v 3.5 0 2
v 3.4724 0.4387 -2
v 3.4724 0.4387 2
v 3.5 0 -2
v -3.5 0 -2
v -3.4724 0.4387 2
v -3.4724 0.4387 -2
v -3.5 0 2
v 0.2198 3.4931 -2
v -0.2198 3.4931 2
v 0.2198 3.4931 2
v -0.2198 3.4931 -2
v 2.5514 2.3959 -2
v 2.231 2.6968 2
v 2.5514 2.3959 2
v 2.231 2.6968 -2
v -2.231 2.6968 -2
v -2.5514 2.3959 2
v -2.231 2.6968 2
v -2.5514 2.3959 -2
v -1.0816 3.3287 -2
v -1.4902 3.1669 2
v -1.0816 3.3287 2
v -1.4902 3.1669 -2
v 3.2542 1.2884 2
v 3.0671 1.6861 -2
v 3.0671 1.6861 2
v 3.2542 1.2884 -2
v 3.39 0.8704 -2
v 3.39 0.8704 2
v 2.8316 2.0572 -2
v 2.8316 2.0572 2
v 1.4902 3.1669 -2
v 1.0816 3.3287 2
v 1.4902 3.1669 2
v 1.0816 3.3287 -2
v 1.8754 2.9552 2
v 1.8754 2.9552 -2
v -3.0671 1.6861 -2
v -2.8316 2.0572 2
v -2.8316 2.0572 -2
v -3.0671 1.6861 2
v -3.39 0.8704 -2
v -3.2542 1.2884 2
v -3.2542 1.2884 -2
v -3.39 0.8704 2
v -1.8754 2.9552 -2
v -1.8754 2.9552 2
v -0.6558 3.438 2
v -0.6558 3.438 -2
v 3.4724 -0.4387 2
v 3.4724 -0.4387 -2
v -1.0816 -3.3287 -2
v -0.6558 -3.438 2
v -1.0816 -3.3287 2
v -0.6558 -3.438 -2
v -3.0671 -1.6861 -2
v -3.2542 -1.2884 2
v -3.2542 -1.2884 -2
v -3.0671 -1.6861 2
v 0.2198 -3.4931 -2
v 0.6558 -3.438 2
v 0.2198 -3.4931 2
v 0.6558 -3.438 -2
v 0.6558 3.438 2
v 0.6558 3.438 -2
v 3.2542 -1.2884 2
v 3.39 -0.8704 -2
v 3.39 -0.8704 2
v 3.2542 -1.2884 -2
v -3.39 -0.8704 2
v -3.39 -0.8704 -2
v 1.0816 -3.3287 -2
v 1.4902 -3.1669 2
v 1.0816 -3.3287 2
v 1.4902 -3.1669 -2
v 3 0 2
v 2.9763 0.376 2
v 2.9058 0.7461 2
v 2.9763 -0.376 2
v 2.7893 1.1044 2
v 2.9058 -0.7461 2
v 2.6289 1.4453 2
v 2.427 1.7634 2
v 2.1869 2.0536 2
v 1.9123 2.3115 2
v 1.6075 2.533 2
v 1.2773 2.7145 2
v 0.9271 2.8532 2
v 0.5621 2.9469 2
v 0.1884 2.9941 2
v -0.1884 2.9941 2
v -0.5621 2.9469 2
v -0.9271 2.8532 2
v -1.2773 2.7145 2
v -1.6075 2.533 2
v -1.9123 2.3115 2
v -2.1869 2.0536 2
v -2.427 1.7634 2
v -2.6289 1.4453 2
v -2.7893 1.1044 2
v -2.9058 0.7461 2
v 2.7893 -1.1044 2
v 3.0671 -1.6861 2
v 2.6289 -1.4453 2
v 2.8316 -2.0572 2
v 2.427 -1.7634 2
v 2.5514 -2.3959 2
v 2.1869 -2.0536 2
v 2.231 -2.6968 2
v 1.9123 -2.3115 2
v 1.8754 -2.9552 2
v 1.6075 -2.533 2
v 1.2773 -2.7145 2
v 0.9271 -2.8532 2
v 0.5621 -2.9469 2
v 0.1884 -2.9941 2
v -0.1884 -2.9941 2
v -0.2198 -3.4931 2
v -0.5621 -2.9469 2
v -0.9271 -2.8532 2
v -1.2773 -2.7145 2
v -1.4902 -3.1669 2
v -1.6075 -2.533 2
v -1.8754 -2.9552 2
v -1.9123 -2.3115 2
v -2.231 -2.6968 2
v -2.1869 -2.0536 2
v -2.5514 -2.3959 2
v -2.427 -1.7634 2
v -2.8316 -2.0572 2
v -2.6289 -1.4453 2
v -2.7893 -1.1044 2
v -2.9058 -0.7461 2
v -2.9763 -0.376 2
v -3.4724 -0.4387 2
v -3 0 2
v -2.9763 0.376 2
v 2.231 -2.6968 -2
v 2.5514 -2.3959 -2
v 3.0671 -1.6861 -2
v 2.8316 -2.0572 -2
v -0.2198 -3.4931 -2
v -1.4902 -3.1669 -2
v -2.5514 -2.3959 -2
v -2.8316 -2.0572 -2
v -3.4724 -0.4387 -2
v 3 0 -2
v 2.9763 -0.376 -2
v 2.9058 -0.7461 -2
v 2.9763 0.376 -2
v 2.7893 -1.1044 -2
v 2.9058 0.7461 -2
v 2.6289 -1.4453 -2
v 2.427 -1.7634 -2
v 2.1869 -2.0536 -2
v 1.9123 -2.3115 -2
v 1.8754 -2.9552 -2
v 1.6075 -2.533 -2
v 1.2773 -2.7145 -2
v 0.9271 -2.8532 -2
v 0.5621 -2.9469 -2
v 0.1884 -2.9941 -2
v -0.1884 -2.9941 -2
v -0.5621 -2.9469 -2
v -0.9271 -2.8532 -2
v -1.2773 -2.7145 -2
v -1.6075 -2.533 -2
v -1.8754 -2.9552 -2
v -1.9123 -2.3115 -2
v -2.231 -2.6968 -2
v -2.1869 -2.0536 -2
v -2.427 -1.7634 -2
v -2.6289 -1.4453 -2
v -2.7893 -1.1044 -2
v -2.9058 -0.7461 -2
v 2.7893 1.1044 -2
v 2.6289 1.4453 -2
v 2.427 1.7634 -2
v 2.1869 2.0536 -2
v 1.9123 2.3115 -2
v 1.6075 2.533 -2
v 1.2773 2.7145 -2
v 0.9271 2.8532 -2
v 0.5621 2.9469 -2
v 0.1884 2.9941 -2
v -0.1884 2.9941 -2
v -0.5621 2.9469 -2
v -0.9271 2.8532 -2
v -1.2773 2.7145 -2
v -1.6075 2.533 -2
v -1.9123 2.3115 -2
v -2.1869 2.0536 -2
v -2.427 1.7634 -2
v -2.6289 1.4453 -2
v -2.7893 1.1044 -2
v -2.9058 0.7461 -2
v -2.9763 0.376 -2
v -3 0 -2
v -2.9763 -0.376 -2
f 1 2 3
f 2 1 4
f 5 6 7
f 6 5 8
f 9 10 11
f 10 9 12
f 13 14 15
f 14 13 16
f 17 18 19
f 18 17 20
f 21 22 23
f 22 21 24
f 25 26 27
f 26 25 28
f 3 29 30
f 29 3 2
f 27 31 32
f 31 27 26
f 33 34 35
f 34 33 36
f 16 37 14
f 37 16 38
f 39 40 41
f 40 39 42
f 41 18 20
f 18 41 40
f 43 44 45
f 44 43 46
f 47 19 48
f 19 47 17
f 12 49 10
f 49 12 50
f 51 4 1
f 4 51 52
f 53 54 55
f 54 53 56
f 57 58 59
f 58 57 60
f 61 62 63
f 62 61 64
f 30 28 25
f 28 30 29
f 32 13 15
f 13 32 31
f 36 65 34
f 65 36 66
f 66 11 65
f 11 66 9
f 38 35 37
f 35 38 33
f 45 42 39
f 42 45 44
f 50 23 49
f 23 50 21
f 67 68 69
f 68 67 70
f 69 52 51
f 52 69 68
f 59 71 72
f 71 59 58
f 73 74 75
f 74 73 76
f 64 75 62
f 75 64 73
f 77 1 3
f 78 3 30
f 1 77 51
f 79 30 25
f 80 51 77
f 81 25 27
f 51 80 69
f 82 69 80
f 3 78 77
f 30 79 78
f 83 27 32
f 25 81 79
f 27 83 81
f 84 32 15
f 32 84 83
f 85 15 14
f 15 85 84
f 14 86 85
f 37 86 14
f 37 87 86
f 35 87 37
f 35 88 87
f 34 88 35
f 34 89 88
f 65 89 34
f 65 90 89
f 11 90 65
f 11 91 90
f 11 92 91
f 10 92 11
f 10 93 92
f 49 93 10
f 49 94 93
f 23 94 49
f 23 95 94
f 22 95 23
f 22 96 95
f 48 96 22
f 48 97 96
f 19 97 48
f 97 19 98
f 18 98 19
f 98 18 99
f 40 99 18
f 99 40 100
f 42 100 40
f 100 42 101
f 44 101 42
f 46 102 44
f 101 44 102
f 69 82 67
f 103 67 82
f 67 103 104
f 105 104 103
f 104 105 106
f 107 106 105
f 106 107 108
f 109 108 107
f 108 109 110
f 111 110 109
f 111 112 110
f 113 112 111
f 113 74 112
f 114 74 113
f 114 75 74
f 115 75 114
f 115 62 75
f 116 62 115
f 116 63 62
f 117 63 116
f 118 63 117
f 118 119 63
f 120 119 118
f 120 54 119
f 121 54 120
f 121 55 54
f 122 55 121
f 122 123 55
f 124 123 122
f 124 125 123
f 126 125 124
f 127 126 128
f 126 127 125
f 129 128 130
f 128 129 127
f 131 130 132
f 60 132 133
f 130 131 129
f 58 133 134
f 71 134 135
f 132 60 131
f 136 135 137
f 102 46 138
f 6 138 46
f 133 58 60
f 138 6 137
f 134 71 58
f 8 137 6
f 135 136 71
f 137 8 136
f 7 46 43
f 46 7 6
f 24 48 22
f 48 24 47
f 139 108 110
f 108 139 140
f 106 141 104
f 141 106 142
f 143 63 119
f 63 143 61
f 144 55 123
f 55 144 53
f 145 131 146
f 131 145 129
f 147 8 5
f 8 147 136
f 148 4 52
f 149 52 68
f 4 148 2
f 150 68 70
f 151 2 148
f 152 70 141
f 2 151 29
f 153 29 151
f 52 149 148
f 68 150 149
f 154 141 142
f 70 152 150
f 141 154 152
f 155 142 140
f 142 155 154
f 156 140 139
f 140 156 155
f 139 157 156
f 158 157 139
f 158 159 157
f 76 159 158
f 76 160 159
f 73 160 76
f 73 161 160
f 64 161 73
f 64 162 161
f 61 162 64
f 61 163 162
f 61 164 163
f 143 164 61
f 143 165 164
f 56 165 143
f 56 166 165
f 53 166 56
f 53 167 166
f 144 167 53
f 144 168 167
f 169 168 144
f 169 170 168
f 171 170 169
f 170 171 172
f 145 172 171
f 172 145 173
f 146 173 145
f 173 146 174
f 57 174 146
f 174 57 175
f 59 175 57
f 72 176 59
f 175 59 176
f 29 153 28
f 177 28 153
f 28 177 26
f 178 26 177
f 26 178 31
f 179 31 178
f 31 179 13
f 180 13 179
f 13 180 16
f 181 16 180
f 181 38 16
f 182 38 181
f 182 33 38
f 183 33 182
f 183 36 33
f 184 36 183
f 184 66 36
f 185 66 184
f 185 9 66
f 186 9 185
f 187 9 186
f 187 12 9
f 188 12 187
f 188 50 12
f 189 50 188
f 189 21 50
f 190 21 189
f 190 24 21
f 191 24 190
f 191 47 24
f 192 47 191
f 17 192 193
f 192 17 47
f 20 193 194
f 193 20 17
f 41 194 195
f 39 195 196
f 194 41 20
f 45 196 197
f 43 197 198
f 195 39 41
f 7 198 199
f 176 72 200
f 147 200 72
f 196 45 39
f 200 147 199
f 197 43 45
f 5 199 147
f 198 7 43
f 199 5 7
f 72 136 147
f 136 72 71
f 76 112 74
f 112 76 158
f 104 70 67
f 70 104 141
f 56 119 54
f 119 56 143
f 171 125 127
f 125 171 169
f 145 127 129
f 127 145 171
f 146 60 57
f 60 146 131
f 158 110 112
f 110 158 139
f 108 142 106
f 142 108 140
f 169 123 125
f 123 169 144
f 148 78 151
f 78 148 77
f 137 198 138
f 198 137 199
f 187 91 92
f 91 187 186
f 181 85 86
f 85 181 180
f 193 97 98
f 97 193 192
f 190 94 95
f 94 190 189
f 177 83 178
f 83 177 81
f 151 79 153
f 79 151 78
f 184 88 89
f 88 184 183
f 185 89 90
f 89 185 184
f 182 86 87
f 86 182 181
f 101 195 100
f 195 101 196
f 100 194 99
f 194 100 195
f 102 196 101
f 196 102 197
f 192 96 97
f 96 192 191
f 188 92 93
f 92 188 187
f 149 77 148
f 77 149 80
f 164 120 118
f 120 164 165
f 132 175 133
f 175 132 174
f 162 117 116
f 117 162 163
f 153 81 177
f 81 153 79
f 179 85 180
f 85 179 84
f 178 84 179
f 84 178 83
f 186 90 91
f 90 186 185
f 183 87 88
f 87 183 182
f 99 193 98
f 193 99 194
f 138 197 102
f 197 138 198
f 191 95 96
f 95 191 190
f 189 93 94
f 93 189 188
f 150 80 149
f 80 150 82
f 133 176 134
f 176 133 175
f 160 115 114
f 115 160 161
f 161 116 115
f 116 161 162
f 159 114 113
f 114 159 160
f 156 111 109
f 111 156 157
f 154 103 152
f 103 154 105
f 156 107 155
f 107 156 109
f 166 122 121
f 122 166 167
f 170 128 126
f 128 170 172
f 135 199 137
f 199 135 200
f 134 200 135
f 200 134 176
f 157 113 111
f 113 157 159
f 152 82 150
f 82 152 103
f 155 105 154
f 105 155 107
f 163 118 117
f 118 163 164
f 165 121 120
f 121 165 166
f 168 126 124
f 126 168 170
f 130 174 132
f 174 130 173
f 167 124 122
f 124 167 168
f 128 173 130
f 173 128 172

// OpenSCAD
$fn = 50;


difference() {
	union() {
		translate(v = [0, 0, -2.0000000000]) {
			cylinder(h = 4, r = 3.5000000000);
		}
	}
	union() {
		translate(v = [0, 0, -100.0000000000]) {
			cylinder(h = 200, r = 3.0000000000);
		}
	}
}
